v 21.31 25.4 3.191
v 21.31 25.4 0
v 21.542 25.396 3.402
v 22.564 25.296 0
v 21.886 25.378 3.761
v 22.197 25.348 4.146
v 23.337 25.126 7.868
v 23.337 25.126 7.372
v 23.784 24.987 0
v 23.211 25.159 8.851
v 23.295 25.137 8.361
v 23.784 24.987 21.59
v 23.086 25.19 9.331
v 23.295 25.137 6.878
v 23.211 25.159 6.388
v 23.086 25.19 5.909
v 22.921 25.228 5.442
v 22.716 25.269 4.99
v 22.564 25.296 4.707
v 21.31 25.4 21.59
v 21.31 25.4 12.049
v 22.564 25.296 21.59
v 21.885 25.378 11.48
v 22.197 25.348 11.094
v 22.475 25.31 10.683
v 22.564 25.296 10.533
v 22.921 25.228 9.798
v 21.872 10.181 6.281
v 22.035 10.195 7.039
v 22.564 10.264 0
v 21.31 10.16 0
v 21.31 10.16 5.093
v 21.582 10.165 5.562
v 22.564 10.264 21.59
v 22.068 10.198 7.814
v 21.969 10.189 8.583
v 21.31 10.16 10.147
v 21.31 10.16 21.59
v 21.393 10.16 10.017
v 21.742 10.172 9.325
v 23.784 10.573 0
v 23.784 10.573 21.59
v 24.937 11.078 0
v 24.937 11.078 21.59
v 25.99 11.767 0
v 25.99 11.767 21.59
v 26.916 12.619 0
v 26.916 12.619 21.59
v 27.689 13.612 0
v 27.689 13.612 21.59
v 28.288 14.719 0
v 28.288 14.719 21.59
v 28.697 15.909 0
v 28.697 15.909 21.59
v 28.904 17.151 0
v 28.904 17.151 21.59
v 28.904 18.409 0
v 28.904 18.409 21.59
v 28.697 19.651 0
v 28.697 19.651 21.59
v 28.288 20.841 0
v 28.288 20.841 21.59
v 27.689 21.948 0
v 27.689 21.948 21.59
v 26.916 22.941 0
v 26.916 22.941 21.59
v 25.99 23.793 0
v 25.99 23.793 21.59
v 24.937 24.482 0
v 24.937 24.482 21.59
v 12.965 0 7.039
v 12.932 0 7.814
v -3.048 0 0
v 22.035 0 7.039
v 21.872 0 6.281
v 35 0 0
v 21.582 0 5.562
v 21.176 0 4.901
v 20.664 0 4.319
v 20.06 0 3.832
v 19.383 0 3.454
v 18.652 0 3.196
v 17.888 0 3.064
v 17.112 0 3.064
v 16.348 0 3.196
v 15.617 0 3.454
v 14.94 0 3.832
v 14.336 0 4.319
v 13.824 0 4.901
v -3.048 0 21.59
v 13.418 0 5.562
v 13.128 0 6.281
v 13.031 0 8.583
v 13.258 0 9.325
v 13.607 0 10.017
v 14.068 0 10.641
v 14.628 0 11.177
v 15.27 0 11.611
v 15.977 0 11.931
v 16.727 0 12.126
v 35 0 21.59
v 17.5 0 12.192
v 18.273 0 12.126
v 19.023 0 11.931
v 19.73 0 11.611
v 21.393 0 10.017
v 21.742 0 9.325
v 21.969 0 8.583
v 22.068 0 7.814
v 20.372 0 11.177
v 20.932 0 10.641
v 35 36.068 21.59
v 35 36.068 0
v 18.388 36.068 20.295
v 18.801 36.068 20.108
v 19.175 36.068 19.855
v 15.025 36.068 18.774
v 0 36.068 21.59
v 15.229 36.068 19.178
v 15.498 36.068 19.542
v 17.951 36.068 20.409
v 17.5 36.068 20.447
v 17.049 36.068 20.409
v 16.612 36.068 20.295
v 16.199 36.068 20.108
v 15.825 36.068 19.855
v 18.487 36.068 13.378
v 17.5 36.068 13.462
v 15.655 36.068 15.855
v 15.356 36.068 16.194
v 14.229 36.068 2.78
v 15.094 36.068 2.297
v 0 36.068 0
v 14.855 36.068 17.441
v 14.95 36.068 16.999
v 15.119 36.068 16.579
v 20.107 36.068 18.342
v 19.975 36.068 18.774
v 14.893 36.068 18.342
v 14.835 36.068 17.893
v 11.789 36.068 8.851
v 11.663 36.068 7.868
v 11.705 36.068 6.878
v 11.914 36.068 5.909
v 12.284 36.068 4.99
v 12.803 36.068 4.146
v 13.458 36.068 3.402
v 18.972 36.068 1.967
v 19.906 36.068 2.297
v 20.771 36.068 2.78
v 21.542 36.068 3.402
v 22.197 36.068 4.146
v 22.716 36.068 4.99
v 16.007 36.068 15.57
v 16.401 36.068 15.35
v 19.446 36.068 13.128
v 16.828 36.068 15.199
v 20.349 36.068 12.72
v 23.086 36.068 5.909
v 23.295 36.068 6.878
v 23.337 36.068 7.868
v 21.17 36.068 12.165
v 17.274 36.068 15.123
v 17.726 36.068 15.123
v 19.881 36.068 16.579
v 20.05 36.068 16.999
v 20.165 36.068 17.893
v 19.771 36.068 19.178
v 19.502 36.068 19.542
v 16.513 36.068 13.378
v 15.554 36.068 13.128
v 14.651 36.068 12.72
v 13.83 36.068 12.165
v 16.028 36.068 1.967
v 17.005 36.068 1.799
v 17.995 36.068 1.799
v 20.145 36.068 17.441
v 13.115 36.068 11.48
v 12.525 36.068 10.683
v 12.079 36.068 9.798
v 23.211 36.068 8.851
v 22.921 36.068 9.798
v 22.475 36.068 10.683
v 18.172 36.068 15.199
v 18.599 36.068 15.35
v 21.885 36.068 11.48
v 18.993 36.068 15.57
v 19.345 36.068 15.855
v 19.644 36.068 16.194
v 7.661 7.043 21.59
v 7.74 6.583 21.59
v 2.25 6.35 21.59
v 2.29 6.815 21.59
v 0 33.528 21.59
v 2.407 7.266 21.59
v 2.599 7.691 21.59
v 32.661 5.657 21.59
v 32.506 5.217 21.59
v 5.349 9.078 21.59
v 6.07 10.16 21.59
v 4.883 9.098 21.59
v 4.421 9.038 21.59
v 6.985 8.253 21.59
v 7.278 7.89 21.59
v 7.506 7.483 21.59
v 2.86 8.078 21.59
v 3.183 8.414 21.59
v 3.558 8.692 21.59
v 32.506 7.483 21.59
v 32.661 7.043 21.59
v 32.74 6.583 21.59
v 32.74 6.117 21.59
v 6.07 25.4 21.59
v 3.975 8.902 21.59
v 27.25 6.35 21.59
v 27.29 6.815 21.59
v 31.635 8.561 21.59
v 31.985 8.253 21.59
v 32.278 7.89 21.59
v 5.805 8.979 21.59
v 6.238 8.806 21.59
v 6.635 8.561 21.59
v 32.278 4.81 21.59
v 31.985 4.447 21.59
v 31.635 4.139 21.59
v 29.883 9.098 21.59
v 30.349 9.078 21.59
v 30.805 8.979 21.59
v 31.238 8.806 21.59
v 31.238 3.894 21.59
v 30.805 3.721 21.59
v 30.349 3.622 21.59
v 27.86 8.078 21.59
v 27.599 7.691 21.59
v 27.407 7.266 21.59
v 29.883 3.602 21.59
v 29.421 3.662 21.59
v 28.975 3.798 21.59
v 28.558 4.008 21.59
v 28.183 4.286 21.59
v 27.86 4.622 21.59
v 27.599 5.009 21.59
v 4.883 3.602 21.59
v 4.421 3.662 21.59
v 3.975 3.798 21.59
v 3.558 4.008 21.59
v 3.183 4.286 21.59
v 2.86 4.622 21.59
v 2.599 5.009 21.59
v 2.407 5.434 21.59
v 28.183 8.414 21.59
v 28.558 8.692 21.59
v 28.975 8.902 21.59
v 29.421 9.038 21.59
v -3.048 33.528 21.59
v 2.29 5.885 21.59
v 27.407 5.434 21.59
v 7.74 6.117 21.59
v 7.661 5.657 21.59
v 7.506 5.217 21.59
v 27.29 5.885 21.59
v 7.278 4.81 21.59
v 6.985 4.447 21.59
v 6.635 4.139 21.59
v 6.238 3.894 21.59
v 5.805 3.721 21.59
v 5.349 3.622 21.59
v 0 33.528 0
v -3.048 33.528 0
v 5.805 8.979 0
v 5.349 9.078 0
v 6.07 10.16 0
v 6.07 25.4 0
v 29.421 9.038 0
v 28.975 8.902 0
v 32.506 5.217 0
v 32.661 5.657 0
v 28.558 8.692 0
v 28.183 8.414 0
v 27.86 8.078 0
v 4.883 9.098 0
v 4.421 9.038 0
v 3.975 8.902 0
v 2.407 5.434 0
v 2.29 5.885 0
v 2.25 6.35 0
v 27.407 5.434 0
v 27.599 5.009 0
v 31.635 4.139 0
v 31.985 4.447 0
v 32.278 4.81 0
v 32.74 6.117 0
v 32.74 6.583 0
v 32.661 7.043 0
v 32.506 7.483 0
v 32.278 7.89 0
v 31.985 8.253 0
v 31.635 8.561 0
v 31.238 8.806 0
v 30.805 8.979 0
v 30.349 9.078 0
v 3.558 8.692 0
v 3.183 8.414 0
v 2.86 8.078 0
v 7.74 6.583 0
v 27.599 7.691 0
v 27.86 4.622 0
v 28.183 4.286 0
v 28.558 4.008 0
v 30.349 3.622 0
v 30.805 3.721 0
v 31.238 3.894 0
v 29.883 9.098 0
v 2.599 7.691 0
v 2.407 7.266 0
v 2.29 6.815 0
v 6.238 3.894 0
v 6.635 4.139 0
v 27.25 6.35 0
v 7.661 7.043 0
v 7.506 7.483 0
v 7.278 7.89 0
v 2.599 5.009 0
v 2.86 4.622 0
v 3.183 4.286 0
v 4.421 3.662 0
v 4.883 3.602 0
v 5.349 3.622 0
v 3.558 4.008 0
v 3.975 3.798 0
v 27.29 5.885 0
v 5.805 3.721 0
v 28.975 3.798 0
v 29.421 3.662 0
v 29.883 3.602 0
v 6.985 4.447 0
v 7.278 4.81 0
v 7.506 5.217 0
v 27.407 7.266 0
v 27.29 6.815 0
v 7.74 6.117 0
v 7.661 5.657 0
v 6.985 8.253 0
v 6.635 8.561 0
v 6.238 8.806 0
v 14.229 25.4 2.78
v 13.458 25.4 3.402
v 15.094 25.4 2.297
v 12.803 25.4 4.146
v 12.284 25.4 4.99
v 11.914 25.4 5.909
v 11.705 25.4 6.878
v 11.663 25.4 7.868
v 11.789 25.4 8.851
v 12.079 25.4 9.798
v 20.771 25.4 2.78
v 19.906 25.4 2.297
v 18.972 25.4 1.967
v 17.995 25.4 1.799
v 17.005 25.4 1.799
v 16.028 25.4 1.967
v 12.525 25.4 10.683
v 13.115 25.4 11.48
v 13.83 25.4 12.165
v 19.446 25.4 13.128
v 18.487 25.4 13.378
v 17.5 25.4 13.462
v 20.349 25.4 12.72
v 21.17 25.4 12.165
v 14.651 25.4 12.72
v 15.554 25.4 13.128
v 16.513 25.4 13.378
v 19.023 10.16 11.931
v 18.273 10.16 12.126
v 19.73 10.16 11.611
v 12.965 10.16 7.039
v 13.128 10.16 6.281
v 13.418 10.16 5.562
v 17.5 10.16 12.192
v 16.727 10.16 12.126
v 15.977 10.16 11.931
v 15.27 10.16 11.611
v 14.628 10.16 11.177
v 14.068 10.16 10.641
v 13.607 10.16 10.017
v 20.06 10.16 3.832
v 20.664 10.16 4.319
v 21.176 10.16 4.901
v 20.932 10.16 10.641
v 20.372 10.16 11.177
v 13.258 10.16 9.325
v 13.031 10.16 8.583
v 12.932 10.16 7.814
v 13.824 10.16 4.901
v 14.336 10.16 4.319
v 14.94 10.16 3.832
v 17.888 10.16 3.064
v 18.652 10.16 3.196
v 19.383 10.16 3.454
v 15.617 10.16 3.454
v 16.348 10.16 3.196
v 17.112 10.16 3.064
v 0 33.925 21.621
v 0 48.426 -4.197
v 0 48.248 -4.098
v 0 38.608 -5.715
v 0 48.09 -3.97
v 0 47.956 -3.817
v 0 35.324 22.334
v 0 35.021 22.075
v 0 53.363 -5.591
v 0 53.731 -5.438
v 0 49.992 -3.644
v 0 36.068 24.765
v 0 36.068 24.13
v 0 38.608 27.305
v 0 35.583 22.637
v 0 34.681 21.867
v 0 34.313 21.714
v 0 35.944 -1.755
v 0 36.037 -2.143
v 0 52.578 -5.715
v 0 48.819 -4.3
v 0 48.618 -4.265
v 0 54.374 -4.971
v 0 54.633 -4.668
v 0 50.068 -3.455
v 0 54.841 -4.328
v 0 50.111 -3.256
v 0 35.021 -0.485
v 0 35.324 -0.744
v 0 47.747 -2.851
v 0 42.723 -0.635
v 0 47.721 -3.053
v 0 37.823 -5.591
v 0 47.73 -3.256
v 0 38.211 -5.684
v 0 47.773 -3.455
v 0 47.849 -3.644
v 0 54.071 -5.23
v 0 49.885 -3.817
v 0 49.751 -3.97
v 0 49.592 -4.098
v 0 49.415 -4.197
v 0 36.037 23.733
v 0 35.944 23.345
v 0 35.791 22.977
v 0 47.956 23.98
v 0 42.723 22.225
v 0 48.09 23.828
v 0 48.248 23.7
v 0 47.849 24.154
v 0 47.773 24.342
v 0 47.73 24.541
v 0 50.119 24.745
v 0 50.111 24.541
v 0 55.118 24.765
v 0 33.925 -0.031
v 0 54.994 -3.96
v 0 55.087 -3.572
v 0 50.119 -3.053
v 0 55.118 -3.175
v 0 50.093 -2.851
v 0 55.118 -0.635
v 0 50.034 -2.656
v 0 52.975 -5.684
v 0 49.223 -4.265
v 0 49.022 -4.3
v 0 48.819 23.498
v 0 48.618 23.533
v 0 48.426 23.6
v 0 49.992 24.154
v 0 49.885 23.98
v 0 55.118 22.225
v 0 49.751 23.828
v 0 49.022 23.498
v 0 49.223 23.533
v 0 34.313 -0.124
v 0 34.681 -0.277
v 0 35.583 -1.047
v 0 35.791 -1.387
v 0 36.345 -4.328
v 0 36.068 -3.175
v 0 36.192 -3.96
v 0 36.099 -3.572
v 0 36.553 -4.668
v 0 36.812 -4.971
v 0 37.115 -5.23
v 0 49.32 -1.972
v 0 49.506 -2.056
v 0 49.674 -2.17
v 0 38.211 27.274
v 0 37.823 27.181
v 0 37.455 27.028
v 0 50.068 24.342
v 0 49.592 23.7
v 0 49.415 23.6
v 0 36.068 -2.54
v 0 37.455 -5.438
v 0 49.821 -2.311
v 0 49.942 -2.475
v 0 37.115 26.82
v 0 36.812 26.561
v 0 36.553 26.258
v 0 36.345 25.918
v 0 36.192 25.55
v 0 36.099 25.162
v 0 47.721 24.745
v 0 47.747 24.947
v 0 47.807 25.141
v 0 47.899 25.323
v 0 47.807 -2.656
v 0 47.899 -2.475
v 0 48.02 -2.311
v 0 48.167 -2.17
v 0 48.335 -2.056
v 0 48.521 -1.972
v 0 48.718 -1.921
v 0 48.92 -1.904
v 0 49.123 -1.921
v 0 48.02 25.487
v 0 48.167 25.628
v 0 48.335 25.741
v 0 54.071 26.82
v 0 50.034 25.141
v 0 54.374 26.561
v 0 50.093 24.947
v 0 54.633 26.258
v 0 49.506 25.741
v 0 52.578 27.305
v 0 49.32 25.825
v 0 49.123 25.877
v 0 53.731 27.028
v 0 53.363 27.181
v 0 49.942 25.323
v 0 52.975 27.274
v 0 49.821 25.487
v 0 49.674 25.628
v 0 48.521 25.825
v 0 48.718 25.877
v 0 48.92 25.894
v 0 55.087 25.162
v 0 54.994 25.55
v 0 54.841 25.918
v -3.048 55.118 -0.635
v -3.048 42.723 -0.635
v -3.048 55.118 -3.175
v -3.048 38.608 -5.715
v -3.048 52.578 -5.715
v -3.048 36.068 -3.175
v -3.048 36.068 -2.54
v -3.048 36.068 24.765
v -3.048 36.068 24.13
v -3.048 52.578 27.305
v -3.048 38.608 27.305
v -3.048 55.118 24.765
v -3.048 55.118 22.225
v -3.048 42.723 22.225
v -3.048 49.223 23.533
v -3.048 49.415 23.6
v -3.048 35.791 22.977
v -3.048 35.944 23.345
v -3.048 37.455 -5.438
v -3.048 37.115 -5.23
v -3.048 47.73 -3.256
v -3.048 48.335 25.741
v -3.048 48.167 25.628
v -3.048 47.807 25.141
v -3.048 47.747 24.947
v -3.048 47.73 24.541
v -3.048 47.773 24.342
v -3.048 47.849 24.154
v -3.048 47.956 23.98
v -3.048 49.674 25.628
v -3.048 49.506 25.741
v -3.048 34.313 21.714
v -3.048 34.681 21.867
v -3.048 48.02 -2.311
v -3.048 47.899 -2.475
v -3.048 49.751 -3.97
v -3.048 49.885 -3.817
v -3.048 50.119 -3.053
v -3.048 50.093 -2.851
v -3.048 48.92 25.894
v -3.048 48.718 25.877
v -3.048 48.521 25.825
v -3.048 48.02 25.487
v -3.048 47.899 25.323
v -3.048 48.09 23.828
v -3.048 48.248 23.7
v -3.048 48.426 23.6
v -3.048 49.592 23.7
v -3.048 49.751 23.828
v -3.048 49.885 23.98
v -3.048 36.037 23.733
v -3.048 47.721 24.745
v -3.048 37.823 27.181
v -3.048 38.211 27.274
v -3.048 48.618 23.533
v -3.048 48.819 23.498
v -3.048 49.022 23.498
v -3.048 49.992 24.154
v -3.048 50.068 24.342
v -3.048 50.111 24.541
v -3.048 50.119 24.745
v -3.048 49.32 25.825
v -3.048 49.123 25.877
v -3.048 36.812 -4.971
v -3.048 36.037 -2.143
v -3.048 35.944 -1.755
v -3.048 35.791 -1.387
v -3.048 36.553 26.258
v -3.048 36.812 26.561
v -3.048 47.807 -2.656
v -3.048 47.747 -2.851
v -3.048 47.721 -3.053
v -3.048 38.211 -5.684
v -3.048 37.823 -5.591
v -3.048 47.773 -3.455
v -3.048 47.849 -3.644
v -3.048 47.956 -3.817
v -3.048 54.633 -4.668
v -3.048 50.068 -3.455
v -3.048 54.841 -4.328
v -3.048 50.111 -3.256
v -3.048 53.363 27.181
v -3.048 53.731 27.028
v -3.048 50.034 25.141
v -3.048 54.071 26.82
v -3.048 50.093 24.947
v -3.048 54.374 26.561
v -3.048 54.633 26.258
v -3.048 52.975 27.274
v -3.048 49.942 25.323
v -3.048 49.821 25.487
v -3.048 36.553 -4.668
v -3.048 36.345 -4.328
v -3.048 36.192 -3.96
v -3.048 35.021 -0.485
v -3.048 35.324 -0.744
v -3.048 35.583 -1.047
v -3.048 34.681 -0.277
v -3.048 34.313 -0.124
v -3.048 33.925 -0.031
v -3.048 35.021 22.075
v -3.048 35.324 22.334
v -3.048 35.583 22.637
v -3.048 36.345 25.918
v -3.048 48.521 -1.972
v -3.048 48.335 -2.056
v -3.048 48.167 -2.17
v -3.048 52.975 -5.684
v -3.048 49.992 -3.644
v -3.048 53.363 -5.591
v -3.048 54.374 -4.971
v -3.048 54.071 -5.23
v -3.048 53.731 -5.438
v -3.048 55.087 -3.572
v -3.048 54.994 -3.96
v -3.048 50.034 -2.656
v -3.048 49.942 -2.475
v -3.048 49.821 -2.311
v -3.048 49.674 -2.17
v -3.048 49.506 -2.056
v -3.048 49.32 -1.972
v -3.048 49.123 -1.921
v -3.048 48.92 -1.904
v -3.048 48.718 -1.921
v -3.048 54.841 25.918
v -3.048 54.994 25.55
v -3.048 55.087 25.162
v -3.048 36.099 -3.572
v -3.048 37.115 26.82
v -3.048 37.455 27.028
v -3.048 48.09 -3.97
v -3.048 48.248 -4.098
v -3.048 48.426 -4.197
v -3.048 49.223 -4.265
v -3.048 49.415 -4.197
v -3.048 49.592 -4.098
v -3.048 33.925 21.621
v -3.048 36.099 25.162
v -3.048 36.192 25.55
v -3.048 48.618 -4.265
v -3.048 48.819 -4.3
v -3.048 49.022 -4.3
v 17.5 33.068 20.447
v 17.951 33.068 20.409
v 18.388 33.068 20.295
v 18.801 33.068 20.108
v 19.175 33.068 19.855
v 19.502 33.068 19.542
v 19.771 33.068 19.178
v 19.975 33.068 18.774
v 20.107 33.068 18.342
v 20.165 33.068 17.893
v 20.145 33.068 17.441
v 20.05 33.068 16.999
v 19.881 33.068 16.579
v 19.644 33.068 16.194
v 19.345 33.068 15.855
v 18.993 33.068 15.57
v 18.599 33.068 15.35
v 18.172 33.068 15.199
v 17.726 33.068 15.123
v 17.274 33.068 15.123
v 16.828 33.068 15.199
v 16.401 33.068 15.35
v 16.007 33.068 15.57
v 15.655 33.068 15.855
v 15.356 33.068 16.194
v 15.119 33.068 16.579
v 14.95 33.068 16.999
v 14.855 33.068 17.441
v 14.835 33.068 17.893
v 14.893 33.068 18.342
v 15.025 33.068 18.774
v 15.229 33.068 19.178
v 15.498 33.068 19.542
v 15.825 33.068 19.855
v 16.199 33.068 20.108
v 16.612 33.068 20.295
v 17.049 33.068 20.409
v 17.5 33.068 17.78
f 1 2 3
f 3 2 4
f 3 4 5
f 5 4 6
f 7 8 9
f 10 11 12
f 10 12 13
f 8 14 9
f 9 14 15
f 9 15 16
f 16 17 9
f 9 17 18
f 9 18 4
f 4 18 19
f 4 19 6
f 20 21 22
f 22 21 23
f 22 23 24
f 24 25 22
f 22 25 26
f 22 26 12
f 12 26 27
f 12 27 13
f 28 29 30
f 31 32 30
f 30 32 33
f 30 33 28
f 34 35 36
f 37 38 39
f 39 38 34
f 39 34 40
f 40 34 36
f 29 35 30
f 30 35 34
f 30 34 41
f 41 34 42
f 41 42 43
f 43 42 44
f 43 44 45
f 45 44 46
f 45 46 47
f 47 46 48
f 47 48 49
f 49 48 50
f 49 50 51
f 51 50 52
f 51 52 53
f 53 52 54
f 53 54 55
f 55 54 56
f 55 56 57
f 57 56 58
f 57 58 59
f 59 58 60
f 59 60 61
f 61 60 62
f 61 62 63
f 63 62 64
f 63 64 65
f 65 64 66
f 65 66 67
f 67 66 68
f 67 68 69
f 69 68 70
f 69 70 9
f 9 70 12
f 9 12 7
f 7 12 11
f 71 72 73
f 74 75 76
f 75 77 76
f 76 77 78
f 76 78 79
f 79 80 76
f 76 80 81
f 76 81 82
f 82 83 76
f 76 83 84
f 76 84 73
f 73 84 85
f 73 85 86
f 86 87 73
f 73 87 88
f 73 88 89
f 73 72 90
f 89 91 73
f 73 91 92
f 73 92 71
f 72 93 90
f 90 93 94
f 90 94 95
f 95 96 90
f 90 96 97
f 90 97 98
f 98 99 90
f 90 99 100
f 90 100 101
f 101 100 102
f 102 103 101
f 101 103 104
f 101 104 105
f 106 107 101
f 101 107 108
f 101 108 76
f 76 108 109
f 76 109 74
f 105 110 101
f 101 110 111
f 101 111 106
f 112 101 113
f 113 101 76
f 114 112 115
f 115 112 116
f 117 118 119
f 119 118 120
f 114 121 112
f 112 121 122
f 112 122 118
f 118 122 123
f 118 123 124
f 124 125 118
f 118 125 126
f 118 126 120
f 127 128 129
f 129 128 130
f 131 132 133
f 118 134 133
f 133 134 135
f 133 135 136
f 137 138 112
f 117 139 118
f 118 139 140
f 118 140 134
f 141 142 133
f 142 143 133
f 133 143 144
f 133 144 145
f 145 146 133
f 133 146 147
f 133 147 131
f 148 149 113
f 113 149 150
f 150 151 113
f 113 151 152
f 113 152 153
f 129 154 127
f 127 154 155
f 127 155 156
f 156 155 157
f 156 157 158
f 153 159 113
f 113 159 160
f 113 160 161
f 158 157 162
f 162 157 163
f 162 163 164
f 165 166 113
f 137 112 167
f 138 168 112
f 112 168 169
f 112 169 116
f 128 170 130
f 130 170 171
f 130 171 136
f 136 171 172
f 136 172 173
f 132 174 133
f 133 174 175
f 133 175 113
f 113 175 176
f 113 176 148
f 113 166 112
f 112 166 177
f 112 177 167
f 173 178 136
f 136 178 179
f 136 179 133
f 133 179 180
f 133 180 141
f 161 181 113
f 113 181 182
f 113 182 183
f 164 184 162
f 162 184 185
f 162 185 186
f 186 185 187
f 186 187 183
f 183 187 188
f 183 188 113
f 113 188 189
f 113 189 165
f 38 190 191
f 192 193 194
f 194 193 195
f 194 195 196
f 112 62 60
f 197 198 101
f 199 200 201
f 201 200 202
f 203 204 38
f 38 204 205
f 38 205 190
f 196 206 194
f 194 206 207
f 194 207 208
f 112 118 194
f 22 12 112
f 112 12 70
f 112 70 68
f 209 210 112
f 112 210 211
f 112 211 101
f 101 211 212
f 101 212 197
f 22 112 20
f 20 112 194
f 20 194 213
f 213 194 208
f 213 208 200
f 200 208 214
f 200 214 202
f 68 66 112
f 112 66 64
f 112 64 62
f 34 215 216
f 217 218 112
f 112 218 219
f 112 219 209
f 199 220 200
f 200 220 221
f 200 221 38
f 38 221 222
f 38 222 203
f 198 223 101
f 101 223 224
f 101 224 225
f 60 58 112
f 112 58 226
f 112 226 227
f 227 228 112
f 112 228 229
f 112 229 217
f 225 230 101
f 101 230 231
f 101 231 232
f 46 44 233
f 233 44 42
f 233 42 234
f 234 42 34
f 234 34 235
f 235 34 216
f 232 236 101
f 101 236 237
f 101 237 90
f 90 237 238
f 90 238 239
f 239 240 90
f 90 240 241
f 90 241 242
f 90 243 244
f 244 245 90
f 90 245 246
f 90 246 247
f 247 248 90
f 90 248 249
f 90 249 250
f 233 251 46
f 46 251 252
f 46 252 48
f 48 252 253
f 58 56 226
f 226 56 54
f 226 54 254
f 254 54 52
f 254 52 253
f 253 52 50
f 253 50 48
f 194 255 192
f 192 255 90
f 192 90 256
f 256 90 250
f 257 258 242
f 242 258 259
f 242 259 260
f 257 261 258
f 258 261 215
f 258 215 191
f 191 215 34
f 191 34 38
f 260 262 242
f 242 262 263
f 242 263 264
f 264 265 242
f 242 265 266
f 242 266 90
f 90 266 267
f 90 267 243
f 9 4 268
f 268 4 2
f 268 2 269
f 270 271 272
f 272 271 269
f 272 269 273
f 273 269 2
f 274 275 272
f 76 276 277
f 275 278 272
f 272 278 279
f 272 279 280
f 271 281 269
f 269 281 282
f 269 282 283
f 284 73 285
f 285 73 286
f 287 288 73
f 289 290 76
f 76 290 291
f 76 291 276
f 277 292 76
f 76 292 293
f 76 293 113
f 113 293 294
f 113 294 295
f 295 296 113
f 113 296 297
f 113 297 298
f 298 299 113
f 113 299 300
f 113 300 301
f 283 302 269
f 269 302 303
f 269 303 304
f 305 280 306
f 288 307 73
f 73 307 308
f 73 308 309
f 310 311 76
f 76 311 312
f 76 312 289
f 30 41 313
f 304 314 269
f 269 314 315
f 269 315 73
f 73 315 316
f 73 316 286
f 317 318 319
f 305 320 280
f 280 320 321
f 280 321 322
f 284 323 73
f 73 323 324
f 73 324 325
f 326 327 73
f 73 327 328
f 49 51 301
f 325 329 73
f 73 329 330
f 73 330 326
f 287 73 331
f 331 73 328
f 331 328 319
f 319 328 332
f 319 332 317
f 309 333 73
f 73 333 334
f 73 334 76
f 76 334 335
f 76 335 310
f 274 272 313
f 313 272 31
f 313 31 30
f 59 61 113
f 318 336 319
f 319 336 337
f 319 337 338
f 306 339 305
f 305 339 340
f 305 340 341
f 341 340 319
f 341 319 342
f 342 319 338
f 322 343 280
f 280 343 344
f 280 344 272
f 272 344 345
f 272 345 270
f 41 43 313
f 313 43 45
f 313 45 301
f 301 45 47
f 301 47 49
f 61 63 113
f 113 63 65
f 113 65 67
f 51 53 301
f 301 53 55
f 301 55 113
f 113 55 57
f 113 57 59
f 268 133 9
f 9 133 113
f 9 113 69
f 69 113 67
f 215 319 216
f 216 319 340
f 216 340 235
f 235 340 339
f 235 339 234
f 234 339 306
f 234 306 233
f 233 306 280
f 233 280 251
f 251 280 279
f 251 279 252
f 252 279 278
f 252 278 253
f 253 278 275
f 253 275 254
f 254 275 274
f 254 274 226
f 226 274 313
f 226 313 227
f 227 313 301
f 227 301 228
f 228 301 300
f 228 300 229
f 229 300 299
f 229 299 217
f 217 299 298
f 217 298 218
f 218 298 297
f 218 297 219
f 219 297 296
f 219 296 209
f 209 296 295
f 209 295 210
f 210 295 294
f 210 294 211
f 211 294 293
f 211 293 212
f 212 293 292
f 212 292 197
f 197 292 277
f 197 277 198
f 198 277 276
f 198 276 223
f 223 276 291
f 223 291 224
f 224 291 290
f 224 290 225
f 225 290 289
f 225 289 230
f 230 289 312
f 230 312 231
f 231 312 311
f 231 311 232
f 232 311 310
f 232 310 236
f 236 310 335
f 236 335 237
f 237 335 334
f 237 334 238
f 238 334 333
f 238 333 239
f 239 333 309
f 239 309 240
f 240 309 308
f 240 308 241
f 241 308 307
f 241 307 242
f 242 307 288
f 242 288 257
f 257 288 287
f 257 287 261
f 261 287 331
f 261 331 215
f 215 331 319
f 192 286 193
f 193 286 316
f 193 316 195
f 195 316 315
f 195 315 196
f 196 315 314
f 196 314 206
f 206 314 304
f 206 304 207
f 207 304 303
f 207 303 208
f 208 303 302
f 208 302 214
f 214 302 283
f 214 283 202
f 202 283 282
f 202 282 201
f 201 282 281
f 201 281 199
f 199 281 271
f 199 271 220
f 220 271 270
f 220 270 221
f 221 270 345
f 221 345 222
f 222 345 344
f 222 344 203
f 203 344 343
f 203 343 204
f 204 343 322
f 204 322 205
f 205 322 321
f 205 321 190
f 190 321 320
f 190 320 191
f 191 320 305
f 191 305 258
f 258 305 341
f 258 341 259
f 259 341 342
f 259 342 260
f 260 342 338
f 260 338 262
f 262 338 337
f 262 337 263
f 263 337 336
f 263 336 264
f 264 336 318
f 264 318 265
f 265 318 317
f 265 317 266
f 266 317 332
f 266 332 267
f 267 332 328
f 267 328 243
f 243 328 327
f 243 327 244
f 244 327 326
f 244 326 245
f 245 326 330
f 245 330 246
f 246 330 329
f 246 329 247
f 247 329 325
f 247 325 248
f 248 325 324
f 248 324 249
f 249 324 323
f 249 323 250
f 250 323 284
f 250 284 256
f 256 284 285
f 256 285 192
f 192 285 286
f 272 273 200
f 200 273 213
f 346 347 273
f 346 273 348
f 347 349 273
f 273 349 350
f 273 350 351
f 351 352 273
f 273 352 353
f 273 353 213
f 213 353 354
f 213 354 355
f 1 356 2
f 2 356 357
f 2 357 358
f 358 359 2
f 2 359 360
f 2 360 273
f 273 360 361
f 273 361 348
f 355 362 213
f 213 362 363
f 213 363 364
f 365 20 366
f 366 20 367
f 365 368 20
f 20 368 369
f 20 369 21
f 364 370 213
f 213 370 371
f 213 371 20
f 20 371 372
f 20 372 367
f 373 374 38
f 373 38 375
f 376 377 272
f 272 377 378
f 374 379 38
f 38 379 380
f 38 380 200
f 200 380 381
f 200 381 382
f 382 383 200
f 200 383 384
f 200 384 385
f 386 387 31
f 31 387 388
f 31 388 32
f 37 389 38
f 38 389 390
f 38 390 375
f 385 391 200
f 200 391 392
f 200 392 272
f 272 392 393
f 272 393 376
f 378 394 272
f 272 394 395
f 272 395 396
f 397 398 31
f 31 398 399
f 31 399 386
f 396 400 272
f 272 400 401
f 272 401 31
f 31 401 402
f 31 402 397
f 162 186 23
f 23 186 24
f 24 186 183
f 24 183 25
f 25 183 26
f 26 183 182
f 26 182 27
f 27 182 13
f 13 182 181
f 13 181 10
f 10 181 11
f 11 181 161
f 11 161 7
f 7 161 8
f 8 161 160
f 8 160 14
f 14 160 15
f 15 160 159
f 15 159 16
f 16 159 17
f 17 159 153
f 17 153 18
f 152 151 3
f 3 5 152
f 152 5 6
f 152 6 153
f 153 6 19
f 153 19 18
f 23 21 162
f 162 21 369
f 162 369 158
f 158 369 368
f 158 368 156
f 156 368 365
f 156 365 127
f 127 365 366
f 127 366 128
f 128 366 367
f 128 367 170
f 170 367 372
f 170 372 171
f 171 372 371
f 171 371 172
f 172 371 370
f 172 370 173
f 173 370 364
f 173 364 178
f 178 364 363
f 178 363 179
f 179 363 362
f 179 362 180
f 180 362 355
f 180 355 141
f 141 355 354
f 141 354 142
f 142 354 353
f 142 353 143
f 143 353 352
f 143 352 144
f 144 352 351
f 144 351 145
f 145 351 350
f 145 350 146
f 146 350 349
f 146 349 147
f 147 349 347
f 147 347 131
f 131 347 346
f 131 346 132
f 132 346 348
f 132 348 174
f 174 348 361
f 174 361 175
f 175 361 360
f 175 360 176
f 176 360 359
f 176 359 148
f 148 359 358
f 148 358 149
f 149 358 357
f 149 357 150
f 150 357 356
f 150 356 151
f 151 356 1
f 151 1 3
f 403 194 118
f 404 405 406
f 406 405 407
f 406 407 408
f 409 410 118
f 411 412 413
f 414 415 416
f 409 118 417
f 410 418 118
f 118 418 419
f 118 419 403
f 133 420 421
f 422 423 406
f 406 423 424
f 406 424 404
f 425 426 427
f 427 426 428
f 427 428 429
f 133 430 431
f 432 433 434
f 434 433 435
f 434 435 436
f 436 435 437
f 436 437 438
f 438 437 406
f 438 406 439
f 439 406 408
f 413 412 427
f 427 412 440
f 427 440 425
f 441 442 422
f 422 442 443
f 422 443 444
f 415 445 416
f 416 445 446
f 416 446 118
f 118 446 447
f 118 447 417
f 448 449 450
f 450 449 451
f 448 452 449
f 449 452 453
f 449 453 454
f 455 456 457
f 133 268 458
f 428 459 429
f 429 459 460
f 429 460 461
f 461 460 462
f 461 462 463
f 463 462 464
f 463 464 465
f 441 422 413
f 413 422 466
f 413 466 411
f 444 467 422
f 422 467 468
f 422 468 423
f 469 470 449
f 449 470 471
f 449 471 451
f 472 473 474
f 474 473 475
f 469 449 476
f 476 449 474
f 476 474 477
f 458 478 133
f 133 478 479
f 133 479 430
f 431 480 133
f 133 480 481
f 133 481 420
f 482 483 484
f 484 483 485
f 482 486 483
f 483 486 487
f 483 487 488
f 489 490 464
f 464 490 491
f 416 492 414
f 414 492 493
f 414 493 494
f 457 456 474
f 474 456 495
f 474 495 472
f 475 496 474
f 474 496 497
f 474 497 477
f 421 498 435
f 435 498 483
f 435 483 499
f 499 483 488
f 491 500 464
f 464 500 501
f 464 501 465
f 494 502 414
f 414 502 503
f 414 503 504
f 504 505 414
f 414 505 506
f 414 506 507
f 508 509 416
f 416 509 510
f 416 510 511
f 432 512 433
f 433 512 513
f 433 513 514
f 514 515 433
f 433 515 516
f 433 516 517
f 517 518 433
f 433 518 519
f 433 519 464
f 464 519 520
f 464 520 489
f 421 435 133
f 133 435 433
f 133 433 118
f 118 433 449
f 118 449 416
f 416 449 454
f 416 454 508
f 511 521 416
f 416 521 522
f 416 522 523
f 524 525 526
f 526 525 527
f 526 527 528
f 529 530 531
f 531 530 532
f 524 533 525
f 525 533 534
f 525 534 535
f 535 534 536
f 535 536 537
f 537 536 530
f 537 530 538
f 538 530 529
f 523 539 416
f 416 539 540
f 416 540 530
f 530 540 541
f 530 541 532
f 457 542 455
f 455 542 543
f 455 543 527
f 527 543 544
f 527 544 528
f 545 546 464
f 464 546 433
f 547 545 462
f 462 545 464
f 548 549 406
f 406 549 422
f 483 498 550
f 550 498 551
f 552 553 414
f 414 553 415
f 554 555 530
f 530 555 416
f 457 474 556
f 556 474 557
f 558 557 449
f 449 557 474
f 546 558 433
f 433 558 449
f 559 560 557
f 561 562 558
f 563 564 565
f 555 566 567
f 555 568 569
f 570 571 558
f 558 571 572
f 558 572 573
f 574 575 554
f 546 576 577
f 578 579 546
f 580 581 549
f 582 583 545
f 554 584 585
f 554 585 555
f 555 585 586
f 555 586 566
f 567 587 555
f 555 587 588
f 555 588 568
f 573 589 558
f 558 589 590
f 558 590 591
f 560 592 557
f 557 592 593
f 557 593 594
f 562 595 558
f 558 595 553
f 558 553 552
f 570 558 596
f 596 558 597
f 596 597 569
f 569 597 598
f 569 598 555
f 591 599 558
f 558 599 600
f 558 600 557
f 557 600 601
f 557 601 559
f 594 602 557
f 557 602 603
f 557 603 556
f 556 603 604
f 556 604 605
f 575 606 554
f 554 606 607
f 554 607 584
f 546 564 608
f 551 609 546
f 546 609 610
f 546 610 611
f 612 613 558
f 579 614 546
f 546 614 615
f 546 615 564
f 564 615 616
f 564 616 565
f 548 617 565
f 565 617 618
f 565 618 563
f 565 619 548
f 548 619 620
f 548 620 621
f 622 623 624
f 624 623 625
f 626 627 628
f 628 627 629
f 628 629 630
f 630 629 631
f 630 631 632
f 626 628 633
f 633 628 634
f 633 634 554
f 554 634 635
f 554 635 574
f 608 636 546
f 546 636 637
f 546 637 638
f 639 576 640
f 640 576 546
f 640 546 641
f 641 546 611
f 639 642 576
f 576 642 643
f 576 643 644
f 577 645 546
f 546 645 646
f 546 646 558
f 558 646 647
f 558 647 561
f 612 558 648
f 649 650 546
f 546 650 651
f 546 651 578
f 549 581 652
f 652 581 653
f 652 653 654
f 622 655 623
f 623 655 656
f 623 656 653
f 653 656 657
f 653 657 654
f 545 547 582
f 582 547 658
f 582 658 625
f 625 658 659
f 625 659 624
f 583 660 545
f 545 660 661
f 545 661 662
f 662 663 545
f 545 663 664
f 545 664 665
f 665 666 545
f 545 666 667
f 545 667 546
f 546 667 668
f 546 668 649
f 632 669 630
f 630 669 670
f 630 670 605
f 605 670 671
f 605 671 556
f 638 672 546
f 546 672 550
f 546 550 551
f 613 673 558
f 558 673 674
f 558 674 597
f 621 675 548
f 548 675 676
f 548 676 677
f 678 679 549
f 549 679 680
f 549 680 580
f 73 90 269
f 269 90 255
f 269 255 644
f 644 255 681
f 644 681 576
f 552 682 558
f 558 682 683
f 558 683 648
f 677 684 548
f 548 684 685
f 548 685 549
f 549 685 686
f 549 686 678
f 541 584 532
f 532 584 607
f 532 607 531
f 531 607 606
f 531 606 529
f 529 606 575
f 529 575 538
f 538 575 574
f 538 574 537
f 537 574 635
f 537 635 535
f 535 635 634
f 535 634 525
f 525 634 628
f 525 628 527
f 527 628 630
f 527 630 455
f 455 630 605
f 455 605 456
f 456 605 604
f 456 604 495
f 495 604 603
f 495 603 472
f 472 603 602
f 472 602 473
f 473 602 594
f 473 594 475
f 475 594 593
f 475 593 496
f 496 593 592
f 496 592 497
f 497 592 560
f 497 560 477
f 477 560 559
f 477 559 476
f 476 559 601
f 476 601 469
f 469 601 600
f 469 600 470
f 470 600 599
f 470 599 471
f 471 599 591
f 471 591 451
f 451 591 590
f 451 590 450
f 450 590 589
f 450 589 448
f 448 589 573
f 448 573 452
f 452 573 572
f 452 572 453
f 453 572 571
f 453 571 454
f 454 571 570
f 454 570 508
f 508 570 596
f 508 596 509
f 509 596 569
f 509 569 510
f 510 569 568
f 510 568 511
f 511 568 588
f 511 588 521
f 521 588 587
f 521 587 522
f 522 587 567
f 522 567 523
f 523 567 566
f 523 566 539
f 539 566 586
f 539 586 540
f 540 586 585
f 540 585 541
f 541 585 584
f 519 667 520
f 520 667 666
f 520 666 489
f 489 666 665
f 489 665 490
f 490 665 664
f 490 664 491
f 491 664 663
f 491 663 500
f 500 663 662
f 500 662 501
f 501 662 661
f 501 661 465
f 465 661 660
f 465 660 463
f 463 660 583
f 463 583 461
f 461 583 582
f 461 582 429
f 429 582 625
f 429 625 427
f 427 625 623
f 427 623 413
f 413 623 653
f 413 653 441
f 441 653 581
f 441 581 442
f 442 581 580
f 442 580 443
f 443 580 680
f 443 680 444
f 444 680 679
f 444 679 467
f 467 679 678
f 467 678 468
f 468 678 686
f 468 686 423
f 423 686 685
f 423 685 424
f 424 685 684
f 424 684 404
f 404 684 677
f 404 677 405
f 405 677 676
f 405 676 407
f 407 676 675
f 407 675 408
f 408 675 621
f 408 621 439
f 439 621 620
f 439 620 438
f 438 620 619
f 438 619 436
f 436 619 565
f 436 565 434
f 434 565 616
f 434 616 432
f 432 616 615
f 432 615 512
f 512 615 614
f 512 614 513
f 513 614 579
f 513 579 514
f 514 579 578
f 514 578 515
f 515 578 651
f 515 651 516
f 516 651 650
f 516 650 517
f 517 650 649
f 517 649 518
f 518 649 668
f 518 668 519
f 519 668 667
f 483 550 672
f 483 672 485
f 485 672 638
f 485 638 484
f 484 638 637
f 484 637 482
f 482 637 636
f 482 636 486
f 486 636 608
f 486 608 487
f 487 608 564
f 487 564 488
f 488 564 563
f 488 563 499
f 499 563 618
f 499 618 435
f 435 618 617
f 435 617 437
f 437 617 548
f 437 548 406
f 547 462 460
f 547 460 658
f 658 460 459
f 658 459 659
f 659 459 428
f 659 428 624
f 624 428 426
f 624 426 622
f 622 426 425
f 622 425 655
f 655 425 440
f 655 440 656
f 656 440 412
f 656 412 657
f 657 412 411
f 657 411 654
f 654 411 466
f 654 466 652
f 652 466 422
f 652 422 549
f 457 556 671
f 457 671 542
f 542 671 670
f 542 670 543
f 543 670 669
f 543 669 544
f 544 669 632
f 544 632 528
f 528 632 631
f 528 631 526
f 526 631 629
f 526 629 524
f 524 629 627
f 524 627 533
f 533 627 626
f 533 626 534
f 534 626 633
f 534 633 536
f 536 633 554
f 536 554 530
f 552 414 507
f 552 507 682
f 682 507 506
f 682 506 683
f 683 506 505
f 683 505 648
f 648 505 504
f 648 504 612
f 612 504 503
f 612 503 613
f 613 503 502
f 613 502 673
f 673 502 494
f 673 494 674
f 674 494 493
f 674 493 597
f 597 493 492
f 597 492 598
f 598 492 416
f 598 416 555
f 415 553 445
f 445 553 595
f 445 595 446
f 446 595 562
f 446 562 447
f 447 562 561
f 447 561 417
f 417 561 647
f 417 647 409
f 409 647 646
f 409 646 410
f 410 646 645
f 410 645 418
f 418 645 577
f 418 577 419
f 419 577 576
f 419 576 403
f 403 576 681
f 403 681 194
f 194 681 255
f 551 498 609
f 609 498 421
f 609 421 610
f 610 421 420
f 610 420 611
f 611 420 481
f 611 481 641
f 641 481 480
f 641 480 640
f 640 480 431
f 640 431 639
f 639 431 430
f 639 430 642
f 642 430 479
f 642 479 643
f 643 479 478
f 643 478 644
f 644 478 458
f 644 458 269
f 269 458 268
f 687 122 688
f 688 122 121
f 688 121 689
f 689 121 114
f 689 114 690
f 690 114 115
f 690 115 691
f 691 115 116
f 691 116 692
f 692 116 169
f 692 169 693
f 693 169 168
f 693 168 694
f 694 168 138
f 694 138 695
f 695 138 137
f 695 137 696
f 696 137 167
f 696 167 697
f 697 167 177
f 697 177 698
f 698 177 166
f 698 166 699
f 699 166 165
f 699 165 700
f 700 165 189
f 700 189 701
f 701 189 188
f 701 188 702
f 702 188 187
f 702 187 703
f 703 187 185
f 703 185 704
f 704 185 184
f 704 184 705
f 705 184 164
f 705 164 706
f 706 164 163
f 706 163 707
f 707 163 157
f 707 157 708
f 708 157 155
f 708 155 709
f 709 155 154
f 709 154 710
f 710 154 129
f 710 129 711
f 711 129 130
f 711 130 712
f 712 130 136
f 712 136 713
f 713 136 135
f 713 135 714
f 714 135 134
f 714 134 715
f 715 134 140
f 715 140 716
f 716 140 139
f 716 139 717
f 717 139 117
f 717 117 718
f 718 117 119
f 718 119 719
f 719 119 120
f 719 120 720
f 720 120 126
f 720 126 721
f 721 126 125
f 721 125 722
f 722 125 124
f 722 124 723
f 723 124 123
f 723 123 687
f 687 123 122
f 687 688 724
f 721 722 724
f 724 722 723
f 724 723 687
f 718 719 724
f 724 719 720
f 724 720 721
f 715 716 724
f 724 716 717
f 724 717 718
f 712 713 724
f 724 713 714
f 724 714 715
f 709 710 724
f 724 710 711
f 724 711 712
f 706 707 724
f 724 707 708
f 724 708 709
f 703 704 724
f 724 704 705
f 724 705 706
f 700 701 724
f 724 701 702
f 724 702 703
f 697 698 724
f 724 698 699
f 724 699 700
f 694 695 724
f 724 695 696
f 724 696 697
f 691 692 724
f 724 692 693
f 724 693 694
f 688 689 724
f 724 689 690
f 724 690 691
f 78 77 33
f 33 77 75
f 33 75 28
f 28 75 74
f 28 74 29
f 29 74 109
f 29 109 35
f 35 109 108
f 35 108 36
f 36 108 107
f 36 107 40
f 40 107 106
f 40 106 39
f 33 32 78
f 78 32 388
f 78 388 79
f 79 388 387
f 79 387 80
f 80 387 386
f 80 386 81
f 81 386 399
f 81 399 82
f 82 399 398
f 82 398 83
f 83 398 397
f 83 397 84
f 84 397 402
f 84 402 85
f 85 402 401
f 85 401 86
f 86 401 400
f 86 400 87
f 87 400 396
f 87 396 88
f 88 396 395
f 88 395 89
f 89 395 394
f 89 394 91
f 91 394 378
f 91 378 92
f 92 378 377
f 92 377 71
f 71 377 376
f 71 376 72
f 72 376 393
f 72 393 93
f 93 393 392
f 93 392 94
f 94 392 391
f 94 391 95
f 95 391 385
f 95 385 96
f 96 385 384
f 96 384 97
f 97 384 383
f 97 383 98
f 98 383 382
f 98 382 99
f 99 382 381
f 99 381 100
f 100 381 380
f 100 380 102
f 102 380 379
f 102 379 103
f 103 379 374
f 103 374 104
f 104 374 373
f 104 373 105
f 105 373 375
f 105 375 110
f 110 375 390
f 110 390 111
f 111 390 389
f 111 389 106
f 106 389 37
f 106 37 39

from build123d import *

# Parameters (mm, degrees)
SKETCH2_W            = 35
SKETCH2_H            = 36.068
BOSS_EXTRUDE1_DEPTH  = 21.59
M5_CLEARANCE_HOLE1_D = 5.5
SKETCH13_W           = 22.86
SKETCH13_H           = 15.24
CUT_EXTRUDE3_DEPTH   = 55.699439887
CUT_EXTRUDE1_REACH   = 56.699
SKETCH5_R            = 5.842
BOSS_EXTRUDE2_DEPTH  = 3.048
M2_CLEARANCE_HOLE1_D = 2.4
FILLET2_R            = 2.54
SKETCH11_R           = 2.667
CUT_EXTRUDE2_DEPTH   = 3
SKETCH14_R           = 4.572
CUT_EXTRUDE4_DEPTH   = 64.180572876
FILLET3_R            = 7.62


with BuildPart() as part:
    # Sketch2 → Boss-Extrude1 (new body)
    with BuildSketch(Plane.XY):
        with Locations((17.5, 18.034)):
            Rectangle(SKETCH2_W, SKETCH2_H)
    extrude(amount=BOSS_EXTRUDE1_DEPTH)

    # M5 Clearance Hole1 (through all)
    with Locations(Plane(origin=(0, 0, 0), x_dir=(1, 0, 0), z_dir=(0, 0, -1))):
        with Locations((5, -6.35), (30, -6.35)):
            Hole(M5_CLEARANCE_HOLE1_D / 2)

    # Sketch13 → Cut-Extrude3 (cut, through all)
    with BuildSketch(Plane.XY.offset(21.59)):
        with Locations((17.5, 17.78)):
            Rectangle(SKETCH13_W, SKETCH13_H)
    extrude(amount=-CUT_EXTRUDE3_DEPTH, mode=Mode.SUBTRACT)

    # Sketch5 → Cut-Extrude1 (cut, up to next)
    with BuildSketch(Plane(origin=(0, 36.068, 0), x_dir=(1, 0, 0), z_dir=(0, 1, 0)), mode=Mode.PRIVATE) as cut_extrude1_sk1:
        with Locations(Location((17.5, -7.62, 0), (0, 0, 270))):
            Circle(SKETCH5_R)
    cut_extrude1_tool1 = extrude(cut_extrude1_sk1.sketch, amount=-CUT_EXTRUDE1_REACH, mode=Mode.PRIVATE) & part.part
    add(cut_extrude1_tool1.solids().sort_by_distance((17.5, 36.068, 7.62))[0], mode=Mode.SUBTRACT)

    # Sketch7 → Boss-Extrude2 (add)
    with BuildSketch(Plane.ZY):
        Polygon((-5.715, 55.118), (-5.715, 36.068), (0, 36.068), (0, 0), (21.59, 0), (21.59, 36.068), (27.305, 36.068), (27.305, 55.118), (22.225, 55.118), (22.225, 42.7228), (-0.635, 42.7228), (-0.635, 55.118), align=None)
    extrude(amount=BOSS_EXTRUDE2_DEPTH)

    # M2 Clearance Hole1 (through all)
    with Locations(Plane.ZY.offset(3.048)):
        with Locations((-3.10388, 48.9204), (24.69388, 48.9204)):
            Hole(M2_CLEARANCE_HOLE1_D / 2)

    # Fillet2
    fillet2_edges = [part.edges().sort_by_distance(p)[0] for p in [
        (-1.524, 55.118, -5.715),
        (-1.524, 36.068, -5.715),
        (-1.524, 36.068, 0),
        (-1.524, 36.068, 21.59),
        (-1.524, 36.068, 27.305),
        (-1.524, 55.118, 27.305),
    ]]
    fillet(fillet2_edges, radius=FILLET2_R)

    # Sketch11 → Cut-Extrude2 (cut)
    with BuildSketch(Plane(origin=(0, 36.068, 0), x_dir=(1, 0, 0), z_dir=(0, 1, 0))):
        with Locations(Location((17.5, -17.78, 0), (0, 0, 270))):
            Circle(SKETCH11_R)
    extrude(amount=-CUT_EXTRUDE2_DEPTH, mode=Mode.SUBTRACT)

    # Sketch14 → Cut-Extrude4 (cut, through all)
    with BuildSketch(Plane(origin=(0, 10.16, 0), x_dir=(1, 0, 0), z_dir=(0, 1, 0))):
        with Locations(Location((17.5, -7.62, 0), (0, 0, 270))):
            Circle(SKETCH14_R)
    extrude(amount=-CUT_EXTRUDE4_DEPTH, mode=Mode.SUBTRACT)

    # Fillet3
    # the kernel refuses this fillet: 7.62 mm, written as the material it adds along each edge
    with BuildSketch(Plane(origin=(28.93, 25.4, 21.59), x_dir=(-1, 0, 0), z_dir=(0, 0, -1))) as fillet3_piece_1_section:
        with BuildLine():
            CenterArc((FILLET3_R, -FILLET3_R), FILLET3_R, 90, 90)
            Line((0, -FILLET3_R), (0, 0))
            Line((0, 0), (FILLET3_R, 0))
        make_face()
    fillet3_piece_1 = extrude(amount=21.59, mode=Mode.PRIVATE)
    fillet3_piece_1 = fillet3_piece_1 - Plane(origin=(17.5, 23.659865562, 7.62), x_dir=(0, 0, 1), z_dir=(0, 1, 0)) * Cylinder(5.842, 74, mode=Mode.PRIVATE)
    add(fillet3_piece_1)
    with BuildSketch(Plane(origin=(28.93, 10.16, 21.59), x_dir=(0, 1, 0), z_dir=(0, 0, -1))) as fillet3_piece_2_section:
        with BuildLine():
            CenterArc((FILLET3_R, -FILLET3_R), FILLET3_R, 90, 90)
            Line((0, -FILLET3_R), (0, 0))
            Line((0, 0), (FILLET3_R, 0))
        make_face()
    fillet3_piece_2 = extrude(amount=21.59, mode=Mode.PRIVATE)
    fillet3_piece_2 = fillet3_piece_2 - Plane(origin=(17.5, 11.887502218, 7.62), x_dir=(0, 0, 1), z_dir=(0, 1, 0)) * Cylinder(4.572, 74, mode=Mode.PRIVATE)
    add(fillet3_piece_2)


solid = part.part
